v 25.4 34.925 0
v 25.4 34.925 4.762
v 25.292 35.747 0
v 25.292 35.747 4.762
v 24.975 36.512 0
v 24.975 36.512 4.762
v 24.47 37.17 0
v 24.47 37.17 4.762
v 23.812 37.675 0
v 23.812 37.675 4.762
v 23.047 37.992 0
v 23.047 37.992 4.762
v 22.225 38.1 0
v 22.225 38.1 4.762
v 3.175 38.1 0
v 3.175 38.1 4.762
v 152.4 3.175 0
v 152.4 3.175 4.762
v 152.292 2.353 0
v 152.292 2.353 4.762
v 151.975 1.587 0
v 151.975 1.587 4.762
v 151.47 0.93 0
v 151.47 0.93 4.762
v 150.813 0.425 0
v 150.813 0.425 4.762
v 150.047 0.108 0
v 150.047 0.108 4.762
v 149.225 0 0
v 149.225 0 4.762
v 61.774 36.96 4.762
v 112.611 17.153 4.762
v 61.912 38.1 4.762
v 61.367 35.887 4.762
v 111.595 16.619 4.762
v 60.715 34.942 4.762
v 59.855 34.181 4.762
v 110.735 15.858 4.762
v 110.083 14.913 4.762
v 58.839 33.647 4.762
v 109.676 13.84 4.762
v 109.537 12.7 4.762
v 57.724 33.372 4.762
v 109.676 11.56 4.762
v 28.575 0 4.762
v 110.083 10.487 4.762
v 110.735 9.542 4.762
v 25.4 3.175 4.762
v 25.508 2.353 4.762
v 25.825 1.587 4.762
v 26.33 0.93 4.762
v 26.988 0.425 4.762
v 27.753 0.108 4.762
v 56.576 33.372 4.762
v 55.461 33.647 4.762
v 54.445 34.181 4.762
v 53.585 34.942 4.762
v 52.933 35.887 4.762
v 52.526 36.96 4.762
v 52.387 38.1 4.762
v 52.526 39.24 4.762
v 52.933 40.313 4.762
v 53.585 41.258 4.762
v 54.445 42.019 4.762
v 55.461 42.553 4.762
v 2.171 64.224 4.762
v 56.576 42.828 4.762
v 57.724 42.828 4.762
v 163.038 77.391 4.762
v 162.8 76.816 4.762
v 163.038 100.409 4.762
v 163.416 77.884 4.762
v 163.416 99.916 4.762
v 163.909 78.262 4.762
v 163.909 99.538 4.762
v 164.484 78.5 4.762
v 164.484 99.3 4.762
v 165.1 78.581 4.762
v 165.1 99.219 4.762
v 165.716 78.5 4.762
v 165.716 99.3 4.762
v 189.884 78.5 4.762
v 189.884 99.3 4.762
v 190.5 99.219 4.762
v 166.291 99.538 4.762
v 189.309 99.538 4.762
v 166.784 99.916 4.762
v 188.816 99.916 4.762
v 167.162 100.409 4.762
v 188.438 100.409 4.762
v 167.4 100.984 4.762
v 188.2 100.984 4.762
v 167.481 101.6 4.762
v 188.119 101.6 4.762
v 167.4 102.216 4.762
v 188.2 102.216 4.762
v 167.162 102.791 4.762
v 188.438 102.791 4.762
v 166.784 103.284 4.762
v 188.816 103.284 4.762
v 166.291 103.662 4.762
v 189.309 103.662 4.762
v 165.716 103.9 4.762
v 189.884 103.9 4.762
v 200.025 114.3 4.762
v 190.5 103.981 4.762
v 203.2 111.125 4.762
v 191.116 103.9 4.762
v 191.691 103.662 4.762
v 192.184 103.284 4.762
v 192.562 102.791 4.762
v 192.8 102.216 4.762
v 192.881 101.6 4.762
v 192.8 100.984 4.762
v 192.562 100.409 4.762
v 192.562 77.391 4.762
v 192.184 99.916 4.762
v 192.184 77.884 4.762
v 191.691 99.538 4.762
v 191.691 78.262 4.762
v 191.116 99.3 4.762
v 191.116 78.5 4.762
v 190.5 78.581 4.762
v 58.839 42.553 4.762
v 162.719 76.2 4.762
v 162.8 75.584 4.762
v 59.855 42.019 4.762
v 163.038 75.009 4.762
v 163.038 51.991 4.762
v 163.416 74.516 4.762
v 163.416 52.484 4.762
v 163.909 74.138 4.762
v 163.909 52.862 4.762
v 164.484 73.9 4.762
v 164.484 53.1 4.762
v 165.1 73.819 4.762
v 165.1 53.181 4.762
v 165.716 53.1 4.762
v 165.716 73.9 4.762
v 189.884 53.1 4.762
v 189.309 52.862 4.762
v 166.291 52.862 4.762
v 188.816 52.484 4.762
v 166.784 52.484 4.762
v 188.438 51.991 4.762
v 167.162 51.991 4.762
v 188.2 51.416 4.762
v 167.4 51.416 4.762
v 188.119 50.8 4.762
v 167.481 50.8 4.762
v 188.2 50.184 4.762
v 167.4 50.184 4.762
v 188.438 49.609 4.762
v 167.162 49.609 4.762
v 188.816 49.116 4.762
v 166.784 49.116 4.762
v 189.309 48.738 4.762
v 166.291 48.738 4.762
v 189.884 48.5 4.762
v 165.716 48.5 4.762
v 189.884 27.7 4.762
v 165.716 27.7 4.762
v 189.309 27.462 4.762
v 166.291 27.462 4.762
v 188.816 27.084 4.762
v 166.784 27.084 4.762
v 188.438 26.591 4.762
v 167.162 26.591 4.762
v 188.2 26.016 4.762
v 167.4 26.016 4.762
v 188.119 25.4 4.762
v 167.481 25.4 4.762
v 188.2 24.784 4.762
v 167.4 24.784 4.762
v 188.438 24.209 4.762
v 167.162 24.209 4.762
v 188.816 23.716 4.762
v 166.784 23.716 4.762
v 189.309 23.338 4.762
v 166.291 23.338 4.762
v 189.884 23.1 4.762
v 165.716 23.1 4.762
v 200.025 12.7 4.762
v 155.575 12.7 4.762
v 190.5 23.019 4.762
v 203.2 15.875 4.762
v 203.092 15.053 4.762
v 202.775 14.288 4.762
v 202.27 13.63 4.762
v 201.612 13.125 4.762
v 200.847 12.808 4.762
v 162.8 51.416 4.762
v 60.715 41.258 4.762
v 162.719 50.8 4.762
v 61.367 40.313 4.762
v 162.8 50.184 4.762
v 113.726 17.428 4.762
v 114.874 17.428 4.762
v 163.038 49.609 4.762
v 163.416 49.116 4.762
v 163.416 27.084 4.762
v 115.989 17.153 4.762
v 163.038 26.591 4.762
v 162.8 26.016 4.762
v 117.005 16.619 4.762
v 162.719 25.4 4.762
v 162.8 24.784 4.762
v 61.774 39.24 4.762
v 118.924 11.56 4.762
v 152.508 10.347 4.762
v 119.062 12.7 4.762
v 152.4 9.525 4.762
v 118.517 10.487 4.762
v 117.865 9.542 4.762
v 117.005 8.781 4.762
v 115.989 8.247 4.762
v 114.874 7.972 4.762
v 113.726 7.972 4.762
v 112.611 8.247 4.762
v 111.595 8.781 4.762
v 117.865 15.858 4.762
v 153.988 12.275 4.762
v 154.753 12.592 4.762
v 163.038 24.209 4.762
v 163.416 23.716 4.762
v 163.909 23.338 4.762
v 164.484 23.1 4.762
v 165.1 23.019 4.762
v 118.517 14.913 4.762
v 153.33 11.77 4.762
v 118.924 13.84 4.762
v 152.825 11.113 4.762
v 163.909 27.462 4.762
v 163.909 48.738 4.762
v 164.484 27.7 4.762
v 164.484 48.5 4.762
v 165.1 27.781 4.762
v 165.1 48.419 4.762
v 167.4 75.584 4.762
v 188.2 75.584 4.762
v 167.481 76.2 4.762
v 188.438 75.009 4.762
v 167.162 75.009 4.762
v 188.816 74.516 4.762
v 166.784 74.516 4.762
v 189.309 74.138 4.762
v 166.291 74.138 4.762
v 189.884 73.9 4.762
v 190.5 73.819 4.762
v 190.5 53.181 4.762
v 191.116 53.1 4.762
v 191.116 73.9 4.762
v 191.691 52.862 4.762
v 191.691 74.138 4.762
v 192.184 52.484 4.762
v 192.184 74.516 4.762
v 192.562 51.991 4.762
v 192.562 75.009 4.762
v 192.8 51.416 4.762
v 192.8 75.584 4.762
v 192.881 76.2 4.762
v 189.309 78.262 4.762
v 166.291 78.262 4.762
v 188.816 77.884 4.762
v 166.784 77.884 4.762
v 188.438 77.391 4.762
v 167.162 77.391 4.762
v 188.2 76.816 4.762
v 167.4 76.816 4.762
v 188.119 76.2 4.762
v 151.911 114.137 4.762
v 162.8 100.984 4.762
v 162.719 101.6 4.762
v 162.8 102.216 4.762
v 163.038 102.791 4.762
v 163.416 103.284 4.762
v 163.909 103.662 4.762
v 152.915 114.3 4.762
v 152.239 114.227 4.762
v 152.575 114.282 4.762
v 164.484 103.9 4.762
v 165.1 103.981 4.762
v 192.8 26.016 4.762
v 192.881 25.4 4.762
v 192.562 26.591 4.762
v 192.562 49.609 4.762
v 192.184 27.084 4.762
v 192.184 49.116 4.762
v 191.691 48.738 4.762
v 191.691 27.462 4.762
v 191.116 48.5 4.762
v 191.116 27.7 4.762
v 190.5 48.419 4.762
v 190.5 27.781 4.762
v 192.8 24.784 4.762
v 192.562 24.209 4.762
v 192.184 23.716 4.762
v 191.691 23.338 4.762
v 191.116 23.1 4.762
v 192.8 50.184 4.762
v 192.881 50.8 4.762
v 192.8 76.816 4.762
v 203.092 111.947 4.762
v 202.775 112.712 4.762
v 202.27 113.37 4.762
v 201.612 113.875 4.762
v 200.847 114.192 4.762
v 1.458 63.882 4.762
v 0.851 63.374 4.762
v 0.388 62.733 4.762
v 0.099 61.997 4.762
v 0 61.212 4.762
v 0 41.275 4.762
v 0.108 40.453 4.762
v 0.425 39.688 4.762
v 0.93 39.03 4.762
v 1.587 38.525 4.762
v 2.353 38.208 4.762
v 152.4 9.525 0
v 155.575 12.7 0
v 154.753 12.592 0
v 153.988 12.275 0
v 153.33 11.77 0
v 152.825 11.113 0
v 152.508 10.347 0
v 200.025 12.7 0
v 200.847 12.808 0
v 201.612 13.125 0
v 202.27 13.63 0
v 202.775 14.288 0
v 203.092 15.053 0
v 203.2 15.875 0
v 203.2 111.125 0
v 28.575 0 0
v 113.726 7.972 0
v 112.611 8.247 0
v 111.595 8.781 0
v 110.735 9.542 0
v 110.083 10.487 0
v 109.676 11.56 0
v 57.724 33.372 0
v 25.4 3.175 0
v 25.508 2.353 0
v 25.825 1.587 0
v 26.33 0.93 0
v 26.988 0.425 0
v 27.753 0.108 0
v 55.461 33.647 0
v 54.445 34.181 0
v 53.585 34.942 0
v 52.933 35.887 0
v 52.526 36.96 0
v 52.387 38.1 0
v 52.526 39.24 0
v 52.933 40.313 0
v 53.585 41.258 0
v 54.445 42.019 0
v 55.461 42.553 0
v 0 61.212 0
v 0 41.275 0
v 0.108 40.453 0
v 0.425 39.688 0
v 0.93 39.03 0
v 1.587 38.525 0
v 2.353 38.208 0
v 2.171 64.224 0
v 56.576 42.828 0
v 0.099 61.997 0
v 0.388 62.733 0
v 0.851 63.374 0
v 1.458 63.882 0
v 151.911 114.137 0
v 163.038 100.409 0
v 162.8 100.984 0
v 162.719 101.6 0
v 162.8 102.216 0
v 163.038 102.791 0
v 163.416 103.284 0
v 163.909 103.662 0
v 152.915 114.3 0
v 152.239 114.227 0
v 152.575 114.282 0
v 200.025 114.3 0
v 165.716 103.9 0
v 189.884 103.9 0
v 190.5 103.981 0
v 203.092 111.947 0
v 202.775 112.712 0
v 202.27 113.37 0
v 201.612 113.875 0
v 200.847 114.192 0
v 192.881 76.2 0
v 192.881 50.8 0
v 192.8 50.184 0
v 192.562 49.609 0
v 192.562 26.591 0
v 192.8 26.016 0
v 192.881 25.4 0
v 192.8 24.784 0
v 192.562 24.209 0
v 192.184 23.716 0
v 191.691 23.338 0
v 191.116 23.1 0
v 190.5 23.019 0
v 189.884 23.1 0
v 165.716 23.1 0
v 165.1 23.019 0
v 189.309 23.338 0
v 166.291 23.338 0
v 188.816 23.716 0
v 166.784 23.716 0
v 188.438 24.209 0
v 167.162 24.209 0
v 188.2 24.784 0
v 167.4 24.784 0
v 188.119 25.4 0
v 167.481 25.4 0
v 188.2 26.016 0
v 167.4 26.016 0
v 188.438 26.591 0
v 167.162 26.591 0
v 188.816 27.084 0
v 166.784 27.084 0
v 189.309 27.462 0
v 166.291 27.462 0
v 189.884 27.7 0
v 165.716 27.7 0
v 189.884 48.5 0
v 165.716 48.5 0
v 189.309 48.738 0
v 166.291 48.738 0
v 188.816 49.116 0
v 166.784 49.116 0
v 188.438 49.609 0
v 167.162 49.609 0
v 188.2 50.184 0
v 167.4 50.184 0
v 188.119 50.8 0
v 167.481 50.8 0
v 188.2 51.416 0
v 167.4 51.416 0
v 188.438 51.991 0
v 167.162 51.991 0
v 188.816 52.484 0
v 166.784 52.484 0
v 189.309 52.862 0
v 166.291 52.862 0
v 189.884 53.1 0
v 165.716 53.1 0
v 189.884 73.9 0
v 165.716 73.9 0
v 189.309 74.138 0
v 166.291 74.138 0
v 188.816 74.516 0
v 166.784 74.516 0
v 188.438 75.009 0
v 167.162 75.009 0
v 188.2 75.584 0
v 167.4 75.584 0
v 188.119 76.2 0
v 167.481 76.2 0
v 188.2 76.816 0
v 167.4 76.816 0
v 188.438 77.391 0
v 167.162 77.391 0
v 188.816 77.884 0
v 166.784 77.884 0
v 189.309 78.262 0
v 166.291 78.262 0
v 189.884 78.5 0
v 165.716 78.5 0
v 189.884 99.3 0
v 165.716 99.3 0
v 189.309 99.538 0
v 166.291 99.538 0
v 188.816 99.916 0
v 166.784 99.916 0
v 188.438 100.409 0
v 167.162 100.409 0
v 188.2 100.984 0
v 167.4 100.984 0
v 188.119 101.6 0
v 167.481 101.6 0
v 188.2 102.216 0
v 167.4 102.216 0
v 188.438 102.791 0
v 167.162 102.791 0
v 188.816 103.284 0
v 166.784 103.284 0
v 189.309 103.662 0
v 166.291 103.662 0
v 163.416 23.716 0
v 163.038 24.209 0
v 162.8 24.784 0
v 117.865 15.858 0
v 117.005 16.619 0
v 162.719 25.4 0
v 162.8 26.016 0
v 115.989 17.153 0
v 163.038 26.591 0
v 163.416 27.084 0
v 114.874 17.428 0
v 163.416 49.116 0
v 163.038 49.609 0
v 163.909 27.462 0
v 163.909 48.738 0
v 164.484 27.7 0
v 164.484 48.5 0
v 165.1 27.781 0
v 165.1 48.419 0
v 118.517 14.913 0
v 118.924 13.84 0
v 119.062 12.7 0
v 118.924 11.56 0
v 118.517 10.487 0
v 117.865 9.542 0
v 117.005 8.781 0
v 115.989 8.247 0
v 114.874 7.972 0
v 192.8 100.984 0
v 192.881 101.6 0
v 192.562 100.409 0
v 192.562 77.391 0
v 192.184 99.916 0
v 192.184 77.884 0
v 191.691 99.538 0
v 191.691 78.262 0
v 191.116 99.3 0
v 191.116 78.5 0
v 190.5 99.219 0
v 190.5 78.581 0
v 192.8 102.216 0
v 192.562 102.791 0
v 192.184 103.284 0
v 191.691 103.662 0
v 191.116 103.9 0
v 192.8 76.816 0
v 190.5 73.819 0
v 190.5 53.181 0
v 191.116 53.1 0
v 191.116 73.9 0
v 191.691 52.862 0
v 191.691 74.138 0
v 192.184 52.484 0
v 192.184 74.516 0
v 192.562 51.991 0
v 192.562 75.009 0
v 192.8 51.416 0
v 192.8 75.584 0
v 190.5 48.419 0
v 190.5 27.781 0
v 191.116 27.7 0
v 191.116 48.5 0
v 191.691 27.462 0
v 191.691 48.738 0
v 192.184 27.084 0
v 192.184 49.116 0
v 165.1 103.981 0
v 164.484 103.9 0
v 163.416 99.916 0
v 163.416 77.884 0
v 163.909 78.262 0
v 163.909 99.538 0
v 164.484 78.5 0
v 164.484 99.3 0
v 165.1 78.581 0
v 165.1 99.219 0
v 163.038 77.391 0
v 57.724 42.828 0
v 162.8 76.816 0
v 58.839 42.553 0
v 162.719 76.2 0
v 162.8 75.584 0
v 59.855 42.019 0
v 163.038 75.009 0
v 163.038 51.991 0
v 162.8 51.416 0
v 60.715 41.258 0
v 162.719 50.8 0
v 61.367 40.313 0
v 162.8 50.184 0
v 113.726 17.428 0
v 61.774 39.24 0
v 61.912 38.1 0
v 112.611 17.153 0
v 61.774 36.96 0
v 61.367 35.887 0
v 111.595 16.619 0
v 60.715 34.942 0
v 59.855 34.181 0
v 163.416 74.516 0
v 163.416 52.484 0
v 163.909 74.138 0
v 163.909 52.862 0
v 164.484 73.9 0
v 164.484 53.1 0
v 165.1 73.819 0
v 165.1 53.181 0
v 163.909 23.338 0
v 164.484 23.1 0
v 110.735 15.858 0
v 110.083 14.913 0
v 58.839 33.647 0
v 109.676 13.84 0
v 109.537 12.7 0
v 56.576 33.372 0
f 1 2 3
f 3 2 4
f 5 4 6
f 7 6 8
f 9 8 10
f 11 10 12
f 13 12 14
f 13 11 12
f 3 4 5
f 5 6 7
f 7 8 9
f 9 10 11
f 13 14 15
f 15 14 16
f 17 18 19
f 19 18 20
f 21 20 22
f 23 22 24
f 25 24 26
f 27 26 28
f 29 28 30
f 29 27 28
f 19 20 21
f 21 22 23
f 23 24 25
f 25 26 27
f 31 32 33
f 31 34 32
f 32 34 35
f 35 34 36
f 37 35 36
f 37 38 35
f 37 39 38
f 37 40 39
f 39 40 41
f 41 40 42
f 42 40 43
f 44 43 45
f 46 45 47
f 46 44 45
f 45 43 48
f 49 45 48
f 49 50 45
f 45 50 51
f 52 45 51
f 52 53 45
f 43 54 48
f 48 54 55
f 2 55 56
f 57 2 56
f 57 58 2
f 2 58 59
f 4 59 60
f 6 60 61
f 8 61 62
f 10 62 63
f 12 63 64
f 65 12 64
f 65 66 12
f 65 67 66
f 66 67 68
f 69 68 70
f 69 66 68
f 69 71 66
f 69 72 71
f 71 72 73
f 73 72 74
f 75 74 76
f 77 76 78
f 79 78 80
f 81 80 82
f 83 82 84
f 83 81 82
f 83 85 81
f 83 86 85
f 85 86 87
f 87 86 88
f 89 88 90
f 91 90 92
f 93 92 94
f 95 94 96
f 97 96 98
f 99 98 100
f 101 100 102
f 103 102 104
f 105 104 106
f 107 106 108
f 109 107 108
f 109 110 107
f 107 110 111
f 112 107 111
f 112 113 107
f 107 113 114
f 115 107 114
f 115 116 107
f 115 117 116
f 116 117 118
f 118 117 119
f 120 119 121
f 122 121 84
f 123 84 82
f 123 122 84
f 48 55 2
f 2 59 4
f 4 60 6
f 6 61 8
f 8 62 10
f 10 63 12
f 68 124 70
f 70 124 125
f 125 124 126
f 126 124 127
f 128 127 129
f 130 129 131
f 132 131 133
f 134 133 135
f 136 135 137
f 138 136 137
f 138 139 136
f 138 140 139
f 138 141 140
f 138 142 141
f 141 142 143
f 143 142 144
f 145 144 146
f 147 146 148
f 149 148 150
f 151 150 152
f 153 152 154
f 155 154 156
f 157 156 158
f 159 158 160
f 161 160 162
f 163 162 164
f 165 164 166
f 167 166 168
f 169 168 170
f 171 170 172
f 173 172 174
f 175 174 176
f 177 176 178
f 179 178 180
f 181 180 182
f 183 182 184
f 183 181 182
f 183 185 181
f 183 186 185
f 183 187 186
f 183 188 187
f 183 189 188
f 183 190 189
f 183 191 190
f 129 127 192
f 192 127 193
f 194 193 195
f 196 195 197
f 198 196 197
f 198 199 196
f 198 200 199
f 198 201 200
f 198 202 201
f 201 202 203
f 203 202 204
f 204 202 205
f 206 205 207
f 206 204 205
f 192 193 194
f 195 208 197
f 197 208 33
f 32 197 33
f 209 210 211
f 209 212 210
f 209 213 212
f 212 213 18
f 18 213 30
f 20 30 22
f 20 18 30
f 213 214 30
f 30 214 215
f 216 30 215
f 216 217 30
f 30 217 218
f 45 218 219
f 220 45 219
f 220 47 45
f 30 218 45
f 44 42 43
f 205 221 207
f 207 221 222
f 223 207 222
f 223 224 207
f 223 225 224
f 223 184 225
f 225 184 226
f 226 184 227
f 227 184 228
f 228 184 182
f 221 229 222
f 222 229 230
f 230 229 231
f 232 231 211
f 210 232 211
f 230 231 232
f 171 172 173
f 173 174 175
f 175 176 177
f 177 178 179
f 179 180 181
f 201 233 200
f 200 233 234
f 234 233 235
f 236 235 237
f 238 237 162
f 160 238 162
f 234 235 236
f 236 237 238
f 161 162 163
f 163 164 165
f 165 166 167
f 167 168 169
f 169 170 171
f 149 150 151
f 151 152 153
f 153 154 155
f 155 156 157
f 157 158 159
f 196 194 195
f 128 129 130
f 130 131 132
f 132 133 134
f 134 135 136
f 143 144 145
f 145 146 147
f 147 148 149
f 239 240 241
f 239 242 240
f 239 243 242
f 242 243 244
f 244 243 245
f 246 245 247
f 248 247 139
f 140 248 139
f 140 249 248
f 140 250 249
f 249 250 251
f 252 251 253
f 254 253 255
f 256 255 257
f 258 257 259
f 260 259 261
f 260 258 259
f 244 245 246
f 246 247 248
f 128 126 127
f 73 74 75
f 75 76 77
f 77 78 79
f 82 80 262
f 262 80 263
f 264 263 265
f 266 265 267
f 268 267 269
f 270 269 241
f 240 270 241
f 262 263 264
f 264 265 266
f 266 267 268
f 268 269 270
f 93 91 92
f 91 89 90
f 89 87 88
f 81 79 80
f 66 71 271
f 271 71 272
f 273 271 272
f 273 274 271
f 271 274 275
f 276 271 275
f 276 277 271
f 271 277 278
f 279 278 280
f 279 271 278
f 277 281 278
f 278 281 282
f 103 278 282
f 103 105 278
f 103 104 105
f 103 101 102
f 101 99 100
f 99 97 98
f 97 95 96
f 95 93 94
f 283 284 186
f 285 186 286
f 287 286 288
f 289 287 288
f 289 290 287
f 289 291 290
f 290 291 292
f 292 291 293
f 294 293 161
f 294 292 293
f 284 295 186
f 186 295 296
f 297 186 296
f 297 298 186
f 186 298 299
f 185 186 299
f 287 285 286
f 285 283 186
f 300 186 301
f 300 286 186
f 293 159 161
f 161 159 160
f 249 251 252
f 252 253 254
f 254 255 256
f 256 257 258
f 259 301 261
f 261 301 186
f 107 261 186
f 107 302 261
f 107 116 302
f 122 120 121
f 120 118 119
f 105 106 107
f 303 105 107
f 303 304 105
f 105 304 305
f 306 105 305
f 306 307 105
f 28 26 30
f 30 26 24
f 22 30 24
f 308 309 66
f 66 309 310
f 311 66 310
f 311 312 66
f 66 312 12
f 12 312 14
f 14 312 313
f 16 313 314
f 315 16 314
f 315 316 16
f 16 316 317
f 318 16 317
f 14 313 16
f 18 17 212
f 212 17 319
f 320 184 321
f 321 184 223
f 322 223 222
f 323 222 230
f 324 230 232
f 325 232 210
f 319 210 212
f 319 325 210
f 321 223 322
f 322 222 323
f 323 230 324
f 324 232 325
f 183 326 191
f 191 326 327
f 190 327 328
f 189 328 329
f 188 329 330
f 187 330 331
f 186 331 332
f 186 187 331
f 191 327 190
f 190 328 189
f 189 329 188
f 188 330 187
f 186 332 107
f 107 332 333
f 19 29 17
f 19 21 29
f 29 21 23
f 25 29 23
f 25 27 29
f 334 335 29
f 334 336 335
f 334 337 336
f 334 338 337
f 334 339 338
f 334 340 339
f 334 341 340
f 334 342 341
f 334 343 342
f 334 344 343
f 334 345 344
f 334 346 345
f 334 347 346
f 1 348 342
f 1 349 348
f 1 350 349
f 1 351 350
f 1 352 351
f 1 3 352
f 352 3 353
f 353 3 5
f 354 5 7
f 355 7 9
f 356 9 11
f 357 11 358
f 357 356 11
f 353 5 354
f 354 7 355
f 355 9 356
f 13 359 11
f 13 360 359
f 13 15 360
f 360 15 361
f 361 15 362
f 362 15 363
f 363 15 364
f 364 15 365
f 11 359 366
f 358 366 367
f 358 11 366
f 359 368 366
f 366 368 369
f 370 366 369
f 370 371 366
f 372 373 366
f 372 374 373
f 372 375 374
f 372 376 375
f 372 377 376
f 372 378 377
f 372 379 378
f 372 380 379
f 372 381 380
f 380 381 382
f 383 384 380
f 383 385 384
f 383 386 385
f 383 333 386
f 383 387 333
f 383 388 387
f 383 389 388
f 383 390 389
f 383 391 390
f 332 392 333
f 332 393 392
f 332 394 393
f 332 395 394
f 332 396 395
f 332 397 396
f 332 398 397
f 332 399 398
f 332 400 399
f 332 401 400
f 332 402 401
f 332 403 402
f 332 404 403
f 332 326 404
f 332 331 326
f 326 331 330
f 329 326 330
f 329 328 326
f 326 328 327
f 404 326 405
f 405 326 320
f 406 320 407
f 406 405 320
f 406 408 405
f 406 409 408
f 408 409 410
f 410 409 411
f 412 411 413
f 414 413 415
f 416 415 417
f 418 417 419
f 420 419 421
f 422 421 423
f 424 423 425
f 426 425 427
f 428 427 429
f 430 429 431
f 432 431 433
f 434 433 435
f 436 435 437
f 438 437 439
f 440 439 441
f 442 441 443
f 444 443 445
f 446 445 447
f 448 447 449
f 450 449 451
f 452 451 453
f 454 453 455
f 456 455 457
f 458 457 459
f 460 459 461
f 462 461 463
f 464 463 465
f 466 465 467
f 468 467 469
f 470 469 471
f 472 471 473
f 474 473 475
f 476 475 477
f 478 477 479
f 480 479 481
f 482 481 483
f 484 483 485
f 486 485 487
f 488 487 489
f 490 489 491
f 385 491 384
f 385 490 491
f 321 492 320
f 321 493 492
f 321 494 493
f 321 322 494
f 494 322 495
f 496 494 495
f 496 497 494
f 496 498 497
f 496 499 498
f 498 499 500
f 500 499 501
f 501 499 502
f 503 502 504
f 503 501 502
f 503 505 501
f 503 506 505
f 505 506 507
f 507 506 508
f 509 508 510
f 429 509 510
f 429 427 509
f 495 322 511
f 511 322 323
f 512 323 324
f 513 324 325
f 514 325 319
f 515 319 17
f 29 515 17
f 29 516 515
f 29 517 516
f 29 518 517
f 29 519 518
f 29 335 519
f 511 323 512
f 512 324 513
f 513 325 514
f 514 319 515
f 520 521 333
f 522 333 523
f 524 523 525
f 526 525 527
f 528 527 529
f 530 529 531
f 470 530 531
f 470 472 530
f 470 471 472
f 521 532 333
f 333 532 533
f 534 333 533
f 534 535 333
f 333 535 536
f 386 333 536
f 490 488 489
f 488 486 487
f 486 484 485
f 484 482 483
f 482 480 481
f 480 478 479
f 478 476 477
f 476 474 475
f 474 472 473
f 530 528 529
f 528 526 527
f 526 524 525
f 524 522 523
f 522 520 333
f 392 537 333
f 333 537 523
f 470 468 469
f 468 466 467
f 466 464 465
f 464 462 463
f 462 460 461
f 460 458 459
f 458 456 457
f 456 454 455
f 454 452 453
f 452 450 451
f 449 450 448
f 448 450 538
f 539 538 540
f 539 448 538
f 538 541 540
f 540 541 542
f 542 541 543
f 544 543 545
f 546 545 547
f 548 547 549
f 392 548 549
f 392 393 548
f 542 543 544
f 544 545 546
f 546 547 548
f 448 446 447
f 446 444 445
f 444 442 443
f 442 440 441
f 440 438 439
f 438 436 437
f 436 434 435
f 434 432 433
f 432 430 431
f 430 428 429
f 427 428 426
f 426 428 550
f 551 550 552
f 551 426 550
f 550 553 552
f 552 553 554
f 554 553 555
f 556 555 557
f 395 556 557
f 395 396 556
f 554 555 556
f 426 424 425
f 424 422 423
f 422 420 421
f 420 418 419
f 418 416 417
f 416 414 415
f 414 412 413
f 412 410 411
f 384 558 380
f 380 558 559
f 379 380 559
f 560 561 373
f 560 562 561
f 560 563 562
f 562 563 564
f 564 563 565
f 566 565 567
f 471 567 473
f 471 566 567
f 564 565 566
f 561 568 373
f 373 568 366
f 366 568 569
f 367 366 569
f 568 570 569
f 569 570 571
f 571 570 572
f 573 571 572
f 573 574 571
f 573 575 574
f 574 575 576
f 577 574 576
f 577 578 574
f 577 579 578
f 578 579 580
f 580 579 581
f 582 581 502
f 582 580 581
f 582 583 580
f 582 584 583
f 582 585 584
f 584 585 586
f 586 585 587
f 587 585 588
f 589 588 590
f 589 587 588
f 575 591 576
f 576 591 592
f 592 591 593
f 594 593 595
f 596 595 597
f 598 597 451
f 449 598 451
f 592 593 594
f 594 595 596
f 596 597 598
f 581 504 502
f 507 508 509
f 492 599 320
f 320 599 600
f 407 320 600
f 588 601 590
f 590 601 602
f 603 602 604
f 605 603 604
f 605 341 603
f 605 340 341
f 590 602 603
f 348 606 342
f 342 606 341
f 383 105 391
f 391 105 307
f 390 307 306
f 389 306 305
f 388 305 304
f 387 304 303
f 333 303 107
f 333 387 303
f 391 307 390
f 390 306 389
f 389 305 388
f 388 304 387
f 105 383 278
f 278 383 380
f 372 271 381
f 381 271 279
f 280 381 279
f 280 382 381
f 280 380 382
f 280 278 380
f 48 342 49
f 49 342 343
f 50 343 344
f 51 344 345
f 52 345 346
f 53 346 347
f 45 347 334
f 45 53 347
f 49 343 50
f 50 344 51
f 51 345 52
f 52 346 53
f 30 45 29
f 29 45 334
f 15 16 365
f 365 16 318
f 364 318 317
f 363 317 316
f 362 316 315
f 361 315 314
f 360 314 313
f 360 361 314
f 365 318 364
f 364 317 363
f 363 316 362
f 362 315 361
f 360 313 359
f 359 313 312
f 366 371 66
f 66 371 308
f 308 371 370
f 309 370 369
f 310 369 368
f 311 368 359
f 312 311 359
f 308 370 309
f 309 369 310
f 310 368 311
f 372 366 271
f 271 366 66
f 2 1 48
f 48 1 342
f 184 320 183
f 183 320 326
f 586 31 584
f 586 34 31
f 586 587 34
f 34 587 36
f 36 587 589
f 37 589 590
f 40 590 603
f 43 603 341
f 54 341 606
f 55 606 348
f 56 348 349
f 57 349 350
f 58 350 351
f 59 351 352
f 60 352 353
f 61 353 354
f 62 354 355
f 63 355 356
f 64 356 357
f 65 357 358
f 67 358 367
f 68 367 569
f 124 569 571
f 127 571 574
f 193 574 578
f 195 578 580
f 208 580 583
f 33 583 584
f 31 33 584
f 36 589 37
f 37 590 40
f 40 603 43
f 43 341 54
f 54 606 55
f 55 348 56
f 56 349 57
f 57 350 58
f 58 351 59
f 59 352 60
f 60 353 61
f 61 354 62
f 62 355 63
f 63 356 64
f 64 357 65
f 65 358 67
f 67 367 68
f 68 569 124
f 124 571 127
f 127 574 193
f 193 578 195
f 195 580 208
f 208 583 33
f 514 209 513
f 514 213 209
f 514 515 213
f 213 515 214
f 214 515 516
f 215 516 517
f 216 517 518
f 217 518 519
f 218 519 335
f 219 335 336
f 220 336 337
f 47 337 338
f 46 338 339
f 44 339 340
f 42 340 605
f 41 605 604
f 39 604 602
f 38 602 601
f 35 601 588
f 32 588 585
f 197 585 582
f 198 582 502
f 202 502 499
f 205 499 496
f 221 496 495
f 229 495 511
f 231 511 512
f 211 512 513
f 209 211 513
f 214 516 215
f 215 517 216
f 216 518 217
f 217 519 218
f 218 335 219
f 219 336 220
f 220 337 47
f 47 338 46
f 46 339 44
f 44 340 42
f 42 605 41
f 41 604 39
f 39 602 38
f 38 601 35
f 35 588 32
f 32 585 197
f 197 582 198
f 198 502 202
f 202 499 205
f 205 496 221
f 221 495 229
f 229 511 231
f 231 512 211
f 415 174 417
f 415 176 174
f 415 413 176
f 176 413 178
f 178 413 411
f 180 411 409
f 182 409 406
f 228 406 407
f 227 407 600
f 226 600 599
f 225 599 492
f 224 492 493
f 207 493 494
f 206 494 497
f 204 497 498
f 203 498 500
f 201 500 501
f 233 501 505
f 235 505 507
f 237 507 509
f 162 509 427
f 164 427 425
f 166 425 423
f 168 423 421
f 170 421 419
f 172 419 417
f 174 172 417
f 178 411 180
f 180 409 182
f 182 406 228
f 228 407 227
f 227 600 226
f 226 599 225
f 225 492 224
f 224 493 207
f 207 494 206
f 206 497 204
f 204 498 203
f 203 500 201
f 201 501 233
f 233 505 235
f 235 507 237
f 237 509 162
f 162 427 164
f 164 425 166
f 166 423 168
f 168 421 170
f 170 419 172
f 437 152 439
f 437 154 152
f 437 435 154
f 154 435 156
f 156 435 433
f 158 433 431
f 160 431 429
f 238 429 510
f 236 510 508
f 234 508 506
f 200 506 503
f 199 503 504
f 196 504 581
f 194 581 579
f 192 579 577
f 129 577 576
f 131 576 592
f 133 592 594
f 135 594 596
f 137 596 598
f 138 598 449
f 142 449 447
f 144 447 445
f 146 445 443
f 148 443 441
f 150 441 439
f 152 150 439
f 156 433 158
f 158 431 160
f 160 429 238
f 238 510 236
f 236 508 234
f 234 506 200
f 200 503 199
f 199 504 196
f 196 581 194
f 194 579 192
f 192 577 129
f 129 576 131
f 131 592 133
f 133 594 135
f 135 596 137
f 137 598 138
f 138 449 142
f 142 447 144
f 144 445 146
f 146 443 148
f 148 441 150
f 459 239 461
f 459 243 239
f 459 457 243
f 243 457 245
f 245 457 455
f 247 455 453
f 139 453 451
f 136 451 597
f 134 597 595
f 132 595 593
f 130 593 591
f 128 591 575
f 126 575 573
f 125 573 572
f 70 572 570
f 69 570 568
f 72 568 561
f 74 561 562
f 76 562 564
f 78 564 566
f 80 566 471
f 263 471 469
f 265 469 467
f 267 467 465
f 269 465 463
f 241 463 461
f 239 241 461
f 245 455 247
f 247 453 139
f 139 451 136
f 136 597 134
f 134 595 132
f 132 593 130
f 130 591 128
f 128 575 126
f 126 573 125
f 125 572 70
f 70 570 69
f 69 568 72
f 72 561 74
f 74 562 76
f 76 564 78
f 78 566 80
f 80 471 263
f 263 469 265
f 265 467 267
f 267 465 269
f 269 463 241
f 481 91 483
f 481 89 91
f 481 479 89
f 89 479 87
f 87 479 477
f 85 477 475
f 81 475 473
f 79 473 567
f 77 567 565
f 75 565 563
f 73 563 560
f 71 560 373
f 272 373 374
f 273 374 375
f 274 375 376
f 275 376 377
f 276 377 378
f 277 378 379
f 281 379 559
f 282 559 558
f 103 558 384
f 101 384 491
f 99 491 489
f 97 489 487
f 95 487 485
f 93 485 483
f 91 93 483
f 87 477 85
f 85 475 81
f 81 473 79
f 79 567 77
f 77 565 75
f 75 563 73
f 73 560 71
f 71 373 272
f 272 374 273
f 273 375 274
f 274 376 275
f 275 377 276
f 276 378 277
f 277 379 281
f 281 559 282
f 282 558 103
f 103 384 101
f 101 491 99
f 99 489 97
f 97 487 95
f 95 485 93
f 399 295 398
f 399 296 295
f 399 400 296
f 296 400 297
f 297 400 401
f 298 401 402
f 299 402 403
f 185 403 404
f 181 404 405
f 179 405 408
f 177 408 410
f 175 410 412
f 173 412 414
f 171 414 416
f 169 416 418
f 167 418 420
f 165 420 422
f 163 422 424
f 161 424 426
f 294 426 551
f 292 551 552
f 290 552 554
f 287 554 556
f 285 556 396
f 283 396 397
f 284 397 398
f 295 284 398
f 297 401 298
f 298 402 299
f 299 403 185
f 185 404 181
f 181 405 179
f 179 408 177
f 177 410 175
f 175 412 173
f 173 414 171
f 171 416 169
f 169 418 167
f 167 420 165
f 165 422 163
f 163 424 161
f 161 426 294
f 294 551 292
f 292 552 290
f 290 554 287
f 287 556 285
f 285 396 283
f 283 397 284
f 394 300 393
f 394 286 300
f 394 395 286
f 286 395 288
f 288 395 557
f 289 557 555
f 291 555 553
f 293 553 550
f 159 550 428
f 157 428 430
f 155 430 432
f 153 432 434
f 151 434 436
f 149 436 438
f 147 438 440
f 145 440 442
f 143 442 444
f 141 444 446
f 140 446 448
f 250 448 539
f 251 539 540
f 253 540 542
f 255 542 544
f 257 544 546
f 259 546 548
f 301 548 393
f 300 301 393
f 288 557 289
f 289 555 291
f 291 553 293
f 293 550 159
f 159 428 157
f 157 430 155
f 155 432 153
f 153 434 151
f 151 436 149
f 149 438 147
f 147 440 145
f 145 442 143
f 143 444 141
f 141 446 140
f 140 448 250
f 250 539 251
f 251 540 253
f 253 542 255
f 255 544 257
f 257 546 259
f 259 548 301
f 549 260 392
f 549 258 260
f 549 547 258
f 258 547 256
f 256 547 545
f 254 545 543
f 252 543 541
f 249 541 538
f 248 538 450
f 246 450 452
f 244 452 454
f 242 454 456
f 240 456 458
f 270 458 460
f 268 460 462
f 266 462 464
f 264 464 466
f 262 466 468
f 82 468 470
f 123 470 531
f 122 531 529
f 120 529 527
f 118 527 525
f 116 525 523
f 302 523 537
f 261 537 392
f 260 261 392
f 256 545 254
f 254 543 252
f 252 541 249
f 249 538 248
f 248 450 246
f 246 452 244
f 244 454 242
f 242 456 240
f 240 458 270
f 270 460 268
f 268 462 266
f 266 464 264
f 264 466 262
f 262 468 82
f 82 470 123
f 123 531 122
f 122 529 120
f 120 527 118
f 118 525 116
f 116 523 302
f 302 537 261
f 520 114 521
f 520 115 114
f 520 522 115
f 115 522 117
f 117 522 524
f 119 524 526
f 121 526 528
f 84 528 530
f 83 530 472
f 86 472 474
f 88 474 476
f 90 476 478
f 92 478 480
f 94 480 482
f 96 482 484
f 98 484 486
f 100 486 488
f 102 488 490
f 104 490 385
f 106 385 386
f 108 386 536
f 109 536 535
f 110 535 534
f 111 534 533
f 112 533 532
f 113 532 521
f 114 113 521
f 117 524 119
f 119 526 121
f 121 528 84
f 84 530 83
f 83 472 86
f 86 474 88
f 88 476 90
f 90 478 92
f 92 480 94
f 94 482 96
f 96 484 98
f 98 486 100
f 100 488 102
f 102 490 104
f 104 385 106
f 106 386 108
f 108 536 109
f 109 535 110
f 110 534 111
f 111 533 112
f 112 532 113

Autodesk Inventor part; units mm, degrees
ref_plane "YZ Plane" through (0, 0, 0) normal (1, 0, 0) x (0, 1, 0)
ref_plane "XZ Plane" through (0, 0, 0) normal (0, 1, 0) x (-1, 0, 0)
ref_plane "XY Plane" through (0, 0, 0) normal (0, 0, 1) x (1, 0, 0)
sketch "Sketch1" plane through (0, 0, 0) normal (0, 0, 1) x (1, 0, 0)
  line L0 (0, 0) -> (203.2, 0)
  line L1 (203.2, 0) -> (203.2, 127)
  line L2 (203.2, 127) -> (0, 127)
  line L3 (0, 127) -> (0, 0)
  dimension "d0" = 203.2
  dimension "d1" = 127
extrude "Extrusion1" add sketch "Sketch1" along normal blind 4.7625
sketch "Sketch2" plane through (0, 0, 4.7625) normal (0, 0, 1) x (1, 0, 0)
  line L0 (203.2, 127) -> (203.2, 0) projected
  line L1 (0, 127) -> (203.2, 127) projected
  line L2 (190.5, 127) -> (190.5, 101.6) construction
  circle A0 centre (190.5, 101.6) radius 2.3813
  dimension "d4" = 4.7625
  dimension "d5" = 25.4
  dimension "d6" = 12.7
extrude "Extrusion2" cut sketch "Sketch2" against normal up to next
pattern_linear "Rectangular Pattern1" count 4 spacing 25.4 along (0, -1, 0) count 2 spacing 25.4 along (-1, 0, 0) of "Extrusion2"
sketch "Sketch3" plane through (0, 0, 4.7625) normal (0, 0, 1) x (1, 0, 0)
  line L0 (203.2, 0) -> (0, 0) projected
  line L1 (203.2, 127) -> (203.2, 0) projected
  circle A0 centre (114.3, 12.7) radius 4.7625
  circle A1 centre (57.15, 38.1) radius 4.7625
  dimension "d15" = 9.525
  dimension "d16" = 88.9
  dimension "d17" = 12.7
  dimension "d18" = 57.15
  dimension "d19" = 25.4
extrude "Extrusion3" cut sketch "Sketch3" against normal up to next
sketch "Sketch4" plane through (0, 0, 4.7625) normal (0, 0, 1) x (1, 0, 0)
  line L0 (0, 0) -> (0, 127) projected
  line L1 (0, 0) -> (25.4, 0)
  line L2 (25.4, 0) -> (25.4, 38.1)
  line L3 (25.4, 38.1) -> (0, 38.1)
  line L4 (0, 38.1) -> (0, 0)
  line L5 (203.2, 127) -> (0, 127)
  line L6 (0, 127) -> (0, 114.3)
  line L7 (0, 114.3) -> (203.2, 114.3)
  line L8 (203.2, 114.3) -> (203.2, 127)
  line L9 (203.2, 0) -> (152.4, 0)
  line L10 (152.4, 0) -> (152.4, 12.7)
  line L11 (152.4, 12.7) -> (203.2, 12.7)
  line L12 (203.2, 12.7) -> (203.2, 0)
  dimension "d22" = 38.1
  dimension "d23" = 25.4
  dimension "d24" = 50.8
  dimension "d25" = 12.7
  dimension "d26" = 12.7
extrude "Extrusion4" cut sketch "Sketch4" against normal up to next
sketch "Sketch5" plane through (0, 0, 4.7625) normal (0, 0, 1) x (1, 0, 0)
  line L0 (203.2, 114.3) -> (0, 114.3) projected
  line L1 (0, 38.1) -> (0, 114.3) projected
  line L2 (0, 114.3) -> (0, 63.5)
  line L3 (152.4, 114.3) -> (0, 63.5)
  line L4 (0, 114.3) -> (152.4, 114.3)
  point P0 (0, 0)
  dimension "d29" = 25.4
  dimension "d30" = 50.8
extrude "Extrusion5" cut sketch "Sketch5" against normal up to next
fillet "Fillet1" radius 3.175 9 edges at (0, 63.5, 2.3813) (0, 38.1, 2.3813) (25.4, 0, 2.3813) (152.4, 114.3, 2.3813) (203.2, 114.3, 2.3813) (203.2, 12.7, 2.3813) (152.4, 12.7, 2.3813) (152.4, 0, 2.3813) (25.4, 38.1, 2.3813)
properties part number "Frame_BottomRollerPlate" material "Aluminum-6061"
